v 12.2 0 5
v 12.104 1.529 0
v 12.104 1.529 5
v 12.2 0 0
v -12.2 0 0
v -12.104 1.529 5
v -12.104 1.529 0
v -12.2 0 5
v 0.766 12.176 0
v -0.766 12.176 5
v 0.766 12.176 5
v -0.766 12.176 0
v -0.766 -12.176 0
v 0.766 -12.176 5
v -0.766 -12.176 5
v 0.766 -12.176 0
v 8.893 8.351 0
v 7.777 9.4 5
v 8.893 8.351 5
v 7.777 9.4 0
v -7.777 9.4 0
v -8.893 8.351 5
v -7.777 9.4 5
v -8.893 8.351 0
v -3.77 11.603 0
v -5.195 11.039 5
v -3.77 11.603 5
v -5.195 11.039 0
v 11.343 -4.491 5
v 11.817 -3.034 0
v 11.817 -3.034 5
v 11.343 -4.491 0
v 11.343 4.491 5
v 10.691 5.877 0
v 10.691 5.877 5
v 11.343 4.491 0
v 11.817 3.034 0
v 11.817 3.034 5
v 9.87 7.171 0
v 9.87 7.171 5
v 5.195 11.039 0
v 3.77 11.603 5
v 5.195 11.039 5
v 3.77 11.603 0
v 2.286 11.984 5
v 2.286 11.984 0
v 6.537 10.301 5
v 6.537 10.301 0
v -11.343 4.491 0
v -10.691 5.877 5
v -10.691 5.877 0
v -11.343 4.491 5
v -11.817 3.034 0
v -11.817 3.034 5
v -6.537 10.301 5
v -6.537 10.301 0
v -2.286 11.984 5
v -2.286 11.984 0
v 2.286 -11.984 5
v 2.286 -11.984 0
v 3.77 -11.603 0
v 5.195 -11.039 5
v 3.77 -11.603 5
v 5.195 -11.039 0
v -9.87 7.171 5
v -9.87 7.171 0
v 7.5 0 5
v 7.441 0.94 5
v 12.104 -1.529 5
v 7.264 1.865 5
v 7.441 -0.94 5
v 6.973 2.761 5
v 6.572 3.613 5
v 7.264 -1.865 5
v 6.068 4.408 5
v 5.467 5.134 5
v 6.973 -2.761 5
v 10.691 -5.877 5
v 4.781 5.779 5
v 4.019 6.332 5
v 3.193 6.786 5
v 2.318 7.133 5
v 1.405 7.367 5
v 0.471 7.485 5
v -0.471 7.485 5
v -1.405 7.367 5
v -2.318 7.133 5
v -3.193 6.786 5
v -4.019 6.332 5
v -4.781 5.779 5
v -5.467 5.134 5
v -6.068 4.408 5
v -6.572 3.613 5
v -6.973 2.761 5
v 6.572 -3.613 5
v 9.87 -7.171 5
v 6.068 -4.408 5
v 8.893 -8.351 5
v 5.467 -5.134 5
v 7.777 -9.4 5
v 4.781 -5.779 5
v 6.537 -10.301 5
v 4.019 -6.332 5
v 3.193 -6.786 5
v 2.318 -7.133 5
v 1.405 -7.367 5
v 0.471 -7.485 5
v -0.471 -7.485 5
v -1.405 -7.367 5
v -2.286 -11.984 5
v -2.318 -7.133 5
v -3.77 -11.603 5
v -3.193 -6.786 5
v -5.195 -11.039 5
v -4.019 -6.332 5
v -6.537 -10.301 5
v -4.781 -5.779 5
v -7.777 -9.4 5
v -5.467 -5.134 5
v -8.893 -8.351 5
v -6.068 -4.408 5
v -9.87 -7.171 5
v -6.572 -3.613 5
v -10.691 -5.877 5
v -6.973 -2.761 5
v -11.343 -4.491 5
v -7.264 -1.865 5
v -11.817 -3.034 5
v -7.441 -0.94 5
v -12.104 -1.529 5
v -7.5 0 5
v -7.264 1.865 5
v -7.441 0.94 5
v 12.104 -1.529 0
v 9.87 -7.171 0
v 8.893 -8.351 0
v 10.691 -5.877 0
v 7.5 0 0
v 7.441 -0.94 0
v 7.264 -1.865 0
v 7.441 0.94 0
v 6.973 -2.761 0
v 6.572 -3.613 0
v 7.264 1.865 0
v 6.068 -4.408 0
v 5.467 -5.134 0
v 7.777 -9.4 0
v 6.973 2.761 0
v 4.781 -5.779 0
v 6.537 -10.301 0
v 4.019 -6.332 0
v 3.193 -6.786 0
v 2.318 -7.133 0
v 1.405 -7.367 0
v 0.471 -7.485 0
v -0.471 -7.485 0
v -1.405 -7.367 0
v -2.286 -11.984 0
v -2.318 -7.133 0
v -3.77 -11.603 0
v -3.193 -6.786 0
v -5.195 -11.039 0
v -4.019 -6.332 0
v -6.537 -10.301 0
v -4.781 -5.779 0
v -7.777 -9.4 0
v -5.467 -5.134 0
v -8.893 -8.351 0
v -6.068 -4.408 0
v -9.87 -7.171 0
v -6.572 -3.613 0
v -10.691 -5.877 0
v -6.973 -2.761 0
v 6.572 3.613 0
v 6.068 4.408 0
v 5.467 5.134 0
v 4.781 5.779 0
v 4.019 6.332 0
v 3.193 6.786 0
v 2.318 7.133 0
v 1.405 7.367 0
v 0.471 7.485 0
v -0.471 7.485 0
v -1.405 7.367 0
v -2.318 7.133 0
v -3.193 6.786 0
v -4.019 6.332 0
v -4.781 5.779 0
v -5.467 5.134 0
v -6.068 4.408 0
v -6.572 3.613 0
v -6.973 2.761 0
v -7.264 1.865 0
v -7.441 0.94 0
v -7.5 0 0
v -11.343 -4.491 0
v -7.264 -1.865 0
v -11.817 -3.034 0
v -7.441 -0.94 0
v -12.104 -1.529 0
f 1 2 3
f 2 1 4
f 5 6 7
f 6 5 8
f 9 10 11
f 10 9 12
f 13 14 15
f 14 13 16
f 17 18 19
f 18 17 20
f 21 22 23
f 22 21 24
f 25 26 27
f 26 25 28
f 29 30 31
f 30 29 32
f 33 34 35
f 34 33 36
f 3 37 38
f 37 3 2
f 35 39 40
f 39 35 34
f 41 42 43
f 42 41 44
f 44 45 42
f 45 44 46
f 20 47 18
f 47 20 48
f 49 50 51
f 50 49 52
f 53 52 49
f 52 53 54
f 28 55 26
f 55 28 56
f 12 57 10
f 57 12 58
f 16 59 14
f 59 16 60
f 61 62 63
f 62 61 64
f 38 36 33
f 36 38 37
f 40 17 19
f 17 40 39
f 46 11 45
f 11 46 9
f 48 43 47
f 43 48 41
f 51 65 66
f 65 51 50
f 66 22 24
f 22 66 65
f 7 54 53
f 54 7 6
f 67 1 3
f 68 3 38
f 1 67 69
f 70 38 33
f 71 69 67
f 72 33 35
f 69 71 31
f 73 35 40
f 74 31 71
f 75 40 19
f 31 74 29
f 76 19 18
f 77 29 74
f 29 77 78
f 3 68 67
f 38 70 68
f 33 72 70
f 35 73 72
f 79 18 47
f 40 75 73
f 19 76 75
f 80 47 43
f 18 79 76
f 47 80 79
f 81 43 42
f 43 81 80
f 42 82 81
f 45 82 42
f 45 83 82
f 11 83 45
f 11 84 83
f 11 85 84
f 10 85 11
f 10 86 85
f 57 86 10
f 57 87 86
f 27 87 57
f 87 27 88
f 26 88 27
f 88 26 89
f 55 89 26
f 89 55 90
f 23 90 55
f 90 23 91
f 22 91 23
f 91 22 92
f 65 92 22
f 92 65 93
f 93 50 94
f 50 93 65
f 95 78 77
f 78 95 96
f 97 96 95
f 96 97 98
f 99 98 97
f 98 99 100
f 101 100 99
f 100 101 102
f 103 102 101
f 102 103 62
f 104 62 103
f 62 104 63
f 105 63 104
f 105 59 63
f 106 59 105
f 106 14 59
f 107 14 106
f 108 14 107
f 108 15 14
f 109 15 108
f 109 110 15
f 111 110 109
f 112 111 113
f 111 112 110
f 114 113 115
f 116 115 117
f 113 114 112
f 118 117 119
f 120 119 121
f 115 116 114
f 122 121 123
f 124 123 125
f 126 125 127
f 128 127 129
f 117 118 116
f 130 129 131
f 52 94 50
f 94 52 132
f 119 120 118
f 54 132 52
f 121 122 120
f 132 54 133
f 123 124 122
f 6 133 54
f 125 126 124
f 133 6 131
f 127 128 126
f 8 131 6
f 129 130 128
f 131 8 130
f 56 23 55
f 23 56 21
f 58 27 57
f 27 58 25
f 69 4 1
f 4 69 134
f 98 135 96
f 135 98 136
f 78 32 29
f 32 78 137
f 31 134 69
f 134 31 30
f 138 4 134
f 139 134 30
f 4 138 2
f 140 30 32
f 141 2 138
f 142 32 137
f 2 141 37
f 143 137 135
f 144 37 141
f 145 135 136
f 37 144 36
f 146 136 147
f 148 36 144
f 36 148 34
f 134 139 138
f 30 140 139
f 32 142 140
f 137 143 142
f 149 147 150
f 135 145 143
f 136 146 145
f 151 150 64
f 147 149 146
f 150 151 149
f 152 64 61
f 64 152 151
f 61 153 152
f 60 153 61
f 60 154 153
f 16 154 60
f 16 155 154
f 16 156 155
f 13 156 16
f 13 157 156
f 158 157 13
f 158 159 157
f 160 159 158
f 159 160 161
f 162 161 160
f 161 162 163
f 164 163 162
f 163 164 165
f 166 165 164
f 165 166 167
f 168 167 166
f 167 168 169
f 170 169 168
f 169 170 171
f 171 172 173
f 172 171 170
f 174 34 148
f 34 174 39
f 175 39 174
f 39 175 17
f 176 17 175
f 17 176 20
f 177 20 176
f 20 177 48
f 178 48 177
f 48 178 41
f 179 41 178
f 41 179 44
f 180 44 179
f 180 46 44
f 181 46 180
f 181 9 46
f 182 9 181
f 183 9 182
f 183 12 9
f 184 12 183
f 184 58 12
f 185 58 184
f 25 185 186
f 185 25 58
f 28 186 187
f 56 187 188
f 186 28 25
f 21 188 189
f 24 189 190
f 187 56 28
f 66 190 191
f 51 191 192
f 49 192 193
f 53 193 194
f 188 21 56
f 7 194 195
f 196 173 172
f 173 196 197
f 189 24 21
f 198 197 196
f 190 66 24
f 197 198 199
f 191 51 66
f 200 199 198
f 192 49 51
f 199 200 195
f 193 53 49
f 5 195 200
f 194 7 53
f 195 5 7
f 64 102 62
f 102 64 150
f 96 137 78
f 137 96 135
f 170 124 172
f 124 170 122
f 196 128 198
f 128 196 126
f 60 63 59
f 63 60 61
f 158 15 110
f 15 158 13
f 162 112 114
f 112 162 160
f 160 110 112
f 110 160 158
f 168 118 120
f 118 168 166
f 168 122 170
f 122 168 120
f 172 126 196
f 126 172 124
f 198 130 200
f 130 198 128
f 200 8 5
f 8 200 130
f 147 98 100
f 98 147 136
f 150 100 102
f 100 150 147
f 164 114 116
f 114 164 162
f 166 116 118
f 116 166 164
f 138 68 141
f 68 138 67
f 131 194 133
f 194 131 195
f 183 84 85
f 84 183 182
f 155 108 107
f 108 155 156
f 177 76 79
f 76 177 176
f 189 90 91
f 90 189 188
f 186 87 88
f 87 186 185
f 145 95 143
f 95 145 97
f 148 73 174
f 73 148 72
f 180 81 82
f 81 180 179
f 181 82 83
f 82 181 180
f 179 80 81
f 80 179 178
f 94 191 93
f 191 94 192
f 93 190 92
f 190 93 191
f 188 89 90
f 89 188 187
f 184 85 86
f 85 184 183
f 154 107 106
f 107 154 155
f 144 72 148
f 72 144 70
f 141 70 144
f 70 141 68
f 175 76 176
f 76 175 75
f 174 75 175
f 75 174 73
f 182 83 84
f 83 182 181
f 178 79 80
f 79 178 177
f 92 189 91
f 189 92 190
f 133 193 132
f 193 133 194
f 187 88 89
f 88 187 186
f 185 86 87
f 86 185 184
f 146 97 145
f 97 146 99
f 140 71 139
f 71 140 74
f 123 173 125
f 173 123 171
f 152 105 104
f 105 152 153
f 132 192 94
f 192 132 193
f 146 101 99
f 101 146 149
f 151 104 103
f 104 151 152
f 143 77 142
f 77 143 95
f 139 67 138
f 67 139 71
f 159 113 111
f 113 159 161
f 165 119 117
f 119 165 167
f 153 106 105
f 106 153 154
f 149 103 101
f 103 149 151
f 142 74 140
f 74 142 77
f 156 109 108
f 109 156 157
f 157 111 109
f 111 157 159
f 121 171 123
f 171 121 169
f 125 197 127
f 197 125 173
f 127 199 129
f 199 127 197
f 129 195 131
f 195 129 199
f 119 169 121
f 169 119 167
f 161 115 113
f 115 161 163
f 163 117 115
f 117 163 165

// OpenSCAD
$fn = 50;


difference() {
	union() {
		translate(v = [0, 0, 0]) {
			rotate(a = [0, 0, 0]) {
				cylinder(h = 5, r = 12.2000000000);
			}
		}
	}
	union() {
		translate(v = [0, 0, 0]) {
			rotate(a = [0, 0, 0]) {
				cylinder(h = 5, r = 7.5000000000);
			}
		}
	}
}
